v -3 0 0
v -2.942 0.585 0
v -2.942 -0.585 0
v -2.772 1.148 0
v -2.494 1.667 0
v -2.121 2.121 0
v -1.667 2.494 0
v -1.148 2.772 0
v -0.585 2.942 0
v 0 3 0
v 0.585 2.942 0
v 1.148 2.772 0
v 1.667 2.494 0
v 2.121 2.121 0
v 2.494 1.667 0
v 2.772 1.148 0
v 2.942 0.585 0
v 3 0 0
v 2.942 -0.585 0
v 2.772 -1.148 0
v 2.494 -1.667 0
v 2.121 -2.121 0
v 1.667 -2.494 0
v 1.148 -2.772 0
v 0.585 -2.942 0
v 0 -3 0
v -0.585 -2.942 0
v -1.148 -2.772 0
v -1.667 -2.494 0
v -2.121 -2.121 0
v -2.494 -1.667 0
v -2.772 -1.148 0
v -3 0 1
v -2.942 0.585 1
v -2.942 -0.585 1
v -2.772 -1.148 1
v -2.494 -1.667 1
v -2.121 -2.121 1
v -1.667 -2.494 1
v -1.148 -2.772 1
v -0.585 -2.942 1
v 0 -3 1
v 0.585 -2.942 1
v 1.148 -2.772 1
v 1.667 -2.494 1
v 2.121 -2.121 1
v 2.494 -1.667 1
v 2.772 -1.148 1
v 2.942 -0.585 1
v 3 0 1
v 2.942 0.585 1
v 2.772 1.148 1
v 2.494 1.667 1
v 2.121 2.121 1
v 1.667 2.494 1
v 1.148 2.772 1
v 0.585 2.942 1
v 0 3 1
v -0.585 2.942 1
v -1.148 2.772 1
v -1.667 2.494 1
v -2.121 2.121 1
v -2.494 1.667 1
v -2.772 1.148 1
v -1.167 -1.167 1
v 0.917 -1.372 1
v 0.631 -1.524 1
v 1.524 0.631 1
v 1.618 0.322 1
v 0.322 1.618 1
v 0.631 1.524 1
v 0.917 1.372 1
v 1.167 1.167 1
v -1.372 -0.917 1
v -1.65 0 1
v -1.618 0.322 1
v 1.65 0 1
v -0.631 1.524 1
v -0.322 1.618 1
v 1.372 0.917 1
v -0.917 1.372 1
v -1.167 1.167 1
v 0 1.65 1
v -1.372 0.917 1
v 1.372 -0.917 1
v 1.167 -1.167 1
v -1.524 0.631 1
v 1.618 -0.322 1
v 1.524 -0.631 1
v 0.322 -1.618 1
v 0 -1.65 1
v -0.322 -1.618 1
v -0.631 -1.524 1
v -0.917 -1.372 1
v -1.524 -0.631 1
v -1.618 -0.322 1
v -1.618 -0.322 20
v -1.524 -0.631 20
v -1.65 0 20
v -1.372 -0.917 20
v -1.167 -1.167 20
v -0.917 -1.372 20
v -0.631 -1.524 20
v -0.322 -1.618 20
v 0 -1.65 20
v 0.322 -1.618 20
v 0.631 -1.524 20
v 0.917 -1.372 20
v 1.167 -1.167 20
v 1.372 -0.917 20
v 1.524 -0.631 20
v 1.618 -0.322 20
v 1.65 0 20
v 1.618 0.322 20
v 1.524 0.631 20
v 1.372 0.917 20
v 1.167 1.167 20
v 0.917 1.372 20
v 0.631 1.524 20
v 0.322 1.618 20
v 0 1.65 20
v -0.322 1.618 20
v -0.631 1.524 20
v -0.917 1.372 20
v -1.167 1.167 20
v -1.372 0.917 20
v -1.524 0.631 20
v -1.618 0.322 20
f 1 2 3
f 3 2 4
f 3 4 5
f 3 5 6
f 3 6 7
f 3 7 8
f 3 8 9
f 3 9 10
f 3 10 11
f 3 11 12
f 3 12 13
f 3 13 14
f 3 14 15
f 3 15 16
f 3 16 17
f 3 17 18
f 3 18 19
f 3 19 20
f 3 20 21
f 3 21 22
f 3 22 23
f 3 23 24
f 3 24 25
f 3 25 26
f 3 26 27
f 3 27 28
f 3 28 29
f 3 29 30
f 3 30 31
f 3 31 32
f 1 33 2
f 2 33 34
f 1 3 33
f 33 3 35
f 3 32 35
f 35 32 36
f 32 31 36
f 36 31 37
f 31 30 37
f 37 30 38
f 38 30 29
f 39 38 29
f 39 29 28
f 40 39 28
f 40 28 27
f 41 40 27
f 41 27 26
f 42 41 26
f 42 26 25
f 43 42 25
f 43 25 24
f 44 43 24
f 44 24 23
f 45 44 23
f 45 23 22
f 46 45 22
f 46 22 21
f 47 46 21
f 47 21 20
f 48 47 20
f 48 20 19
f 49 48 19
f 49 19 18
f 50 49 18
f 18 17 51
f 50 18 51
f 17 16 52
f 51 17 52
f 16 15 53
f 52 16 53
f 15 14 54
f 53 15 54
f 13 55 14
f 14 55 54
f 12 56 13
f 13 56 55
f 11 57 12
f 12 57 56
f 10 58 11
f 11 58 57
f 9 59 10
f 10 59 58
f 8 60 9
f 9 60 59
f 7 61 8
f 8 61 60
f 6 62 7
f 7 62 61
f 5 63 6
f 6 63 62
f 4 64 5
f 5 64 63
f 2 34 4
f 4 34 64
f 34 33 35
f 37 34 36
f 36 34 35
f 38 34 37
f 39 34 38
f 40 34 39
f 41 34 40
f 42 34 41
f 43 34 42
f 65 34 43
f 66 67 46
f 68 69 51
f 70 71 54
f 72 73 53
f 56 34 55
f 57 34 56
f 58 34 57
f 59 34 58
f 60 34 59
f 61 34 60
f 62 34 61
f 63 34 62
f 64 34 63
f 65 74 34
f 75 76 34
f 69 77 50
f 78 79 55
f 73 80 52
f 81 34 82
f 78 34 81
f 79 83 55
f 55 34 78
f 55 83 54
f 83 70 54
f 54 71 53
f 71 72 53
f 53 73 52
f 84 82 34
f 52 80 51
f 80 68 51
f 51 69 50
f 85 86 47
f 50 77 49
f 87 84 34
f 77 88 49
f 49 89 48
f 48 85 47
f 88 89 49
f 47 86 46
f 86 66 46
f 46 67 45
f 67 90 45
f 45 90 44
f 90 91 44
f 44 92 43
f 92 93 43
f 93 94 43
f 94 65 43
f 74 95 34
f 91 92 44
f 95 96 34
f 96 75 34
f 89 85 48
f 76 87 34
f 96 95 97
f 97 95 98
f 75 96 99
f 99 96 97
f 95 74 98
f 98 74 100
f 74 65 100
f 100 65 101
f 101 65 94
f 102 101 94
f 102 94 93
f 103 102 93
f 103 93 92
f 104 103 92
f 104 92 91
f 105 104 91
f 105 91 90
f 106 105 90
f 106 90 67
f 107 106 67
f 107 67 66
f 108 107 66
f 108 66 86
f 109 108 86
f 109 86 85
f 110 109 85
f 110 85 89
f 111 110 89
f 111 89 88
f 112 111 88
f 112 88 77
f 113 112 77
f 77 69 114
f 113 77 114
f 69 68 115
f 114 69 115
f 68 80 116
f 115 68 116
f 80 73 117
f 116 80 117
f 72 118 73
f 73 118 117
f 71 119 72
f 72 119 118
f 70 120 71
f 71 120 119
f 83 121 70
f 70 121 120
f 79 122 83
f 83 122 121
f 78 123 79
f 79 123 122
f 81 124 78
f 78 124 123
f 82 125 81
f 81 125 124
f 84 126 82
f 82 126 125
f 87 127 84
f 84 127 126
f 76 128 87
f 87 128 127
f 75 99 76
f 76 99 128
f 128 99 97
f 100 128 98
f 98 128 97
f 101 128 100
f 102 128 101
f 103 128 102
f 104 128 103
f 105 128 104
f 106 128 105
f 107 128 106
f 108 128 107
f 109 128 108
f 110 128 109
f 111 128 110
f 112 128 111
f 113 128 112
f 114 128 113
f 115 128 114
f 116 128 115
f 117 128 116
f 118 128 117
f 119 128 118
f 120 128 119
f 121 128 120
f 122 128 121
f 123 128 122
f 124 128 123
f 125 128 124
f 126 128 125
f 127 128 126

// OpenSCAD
union() {
	cylinder(20, d=3.3, $fn = 32);
	cylinder(1, d=6, $fn = 32);
}
